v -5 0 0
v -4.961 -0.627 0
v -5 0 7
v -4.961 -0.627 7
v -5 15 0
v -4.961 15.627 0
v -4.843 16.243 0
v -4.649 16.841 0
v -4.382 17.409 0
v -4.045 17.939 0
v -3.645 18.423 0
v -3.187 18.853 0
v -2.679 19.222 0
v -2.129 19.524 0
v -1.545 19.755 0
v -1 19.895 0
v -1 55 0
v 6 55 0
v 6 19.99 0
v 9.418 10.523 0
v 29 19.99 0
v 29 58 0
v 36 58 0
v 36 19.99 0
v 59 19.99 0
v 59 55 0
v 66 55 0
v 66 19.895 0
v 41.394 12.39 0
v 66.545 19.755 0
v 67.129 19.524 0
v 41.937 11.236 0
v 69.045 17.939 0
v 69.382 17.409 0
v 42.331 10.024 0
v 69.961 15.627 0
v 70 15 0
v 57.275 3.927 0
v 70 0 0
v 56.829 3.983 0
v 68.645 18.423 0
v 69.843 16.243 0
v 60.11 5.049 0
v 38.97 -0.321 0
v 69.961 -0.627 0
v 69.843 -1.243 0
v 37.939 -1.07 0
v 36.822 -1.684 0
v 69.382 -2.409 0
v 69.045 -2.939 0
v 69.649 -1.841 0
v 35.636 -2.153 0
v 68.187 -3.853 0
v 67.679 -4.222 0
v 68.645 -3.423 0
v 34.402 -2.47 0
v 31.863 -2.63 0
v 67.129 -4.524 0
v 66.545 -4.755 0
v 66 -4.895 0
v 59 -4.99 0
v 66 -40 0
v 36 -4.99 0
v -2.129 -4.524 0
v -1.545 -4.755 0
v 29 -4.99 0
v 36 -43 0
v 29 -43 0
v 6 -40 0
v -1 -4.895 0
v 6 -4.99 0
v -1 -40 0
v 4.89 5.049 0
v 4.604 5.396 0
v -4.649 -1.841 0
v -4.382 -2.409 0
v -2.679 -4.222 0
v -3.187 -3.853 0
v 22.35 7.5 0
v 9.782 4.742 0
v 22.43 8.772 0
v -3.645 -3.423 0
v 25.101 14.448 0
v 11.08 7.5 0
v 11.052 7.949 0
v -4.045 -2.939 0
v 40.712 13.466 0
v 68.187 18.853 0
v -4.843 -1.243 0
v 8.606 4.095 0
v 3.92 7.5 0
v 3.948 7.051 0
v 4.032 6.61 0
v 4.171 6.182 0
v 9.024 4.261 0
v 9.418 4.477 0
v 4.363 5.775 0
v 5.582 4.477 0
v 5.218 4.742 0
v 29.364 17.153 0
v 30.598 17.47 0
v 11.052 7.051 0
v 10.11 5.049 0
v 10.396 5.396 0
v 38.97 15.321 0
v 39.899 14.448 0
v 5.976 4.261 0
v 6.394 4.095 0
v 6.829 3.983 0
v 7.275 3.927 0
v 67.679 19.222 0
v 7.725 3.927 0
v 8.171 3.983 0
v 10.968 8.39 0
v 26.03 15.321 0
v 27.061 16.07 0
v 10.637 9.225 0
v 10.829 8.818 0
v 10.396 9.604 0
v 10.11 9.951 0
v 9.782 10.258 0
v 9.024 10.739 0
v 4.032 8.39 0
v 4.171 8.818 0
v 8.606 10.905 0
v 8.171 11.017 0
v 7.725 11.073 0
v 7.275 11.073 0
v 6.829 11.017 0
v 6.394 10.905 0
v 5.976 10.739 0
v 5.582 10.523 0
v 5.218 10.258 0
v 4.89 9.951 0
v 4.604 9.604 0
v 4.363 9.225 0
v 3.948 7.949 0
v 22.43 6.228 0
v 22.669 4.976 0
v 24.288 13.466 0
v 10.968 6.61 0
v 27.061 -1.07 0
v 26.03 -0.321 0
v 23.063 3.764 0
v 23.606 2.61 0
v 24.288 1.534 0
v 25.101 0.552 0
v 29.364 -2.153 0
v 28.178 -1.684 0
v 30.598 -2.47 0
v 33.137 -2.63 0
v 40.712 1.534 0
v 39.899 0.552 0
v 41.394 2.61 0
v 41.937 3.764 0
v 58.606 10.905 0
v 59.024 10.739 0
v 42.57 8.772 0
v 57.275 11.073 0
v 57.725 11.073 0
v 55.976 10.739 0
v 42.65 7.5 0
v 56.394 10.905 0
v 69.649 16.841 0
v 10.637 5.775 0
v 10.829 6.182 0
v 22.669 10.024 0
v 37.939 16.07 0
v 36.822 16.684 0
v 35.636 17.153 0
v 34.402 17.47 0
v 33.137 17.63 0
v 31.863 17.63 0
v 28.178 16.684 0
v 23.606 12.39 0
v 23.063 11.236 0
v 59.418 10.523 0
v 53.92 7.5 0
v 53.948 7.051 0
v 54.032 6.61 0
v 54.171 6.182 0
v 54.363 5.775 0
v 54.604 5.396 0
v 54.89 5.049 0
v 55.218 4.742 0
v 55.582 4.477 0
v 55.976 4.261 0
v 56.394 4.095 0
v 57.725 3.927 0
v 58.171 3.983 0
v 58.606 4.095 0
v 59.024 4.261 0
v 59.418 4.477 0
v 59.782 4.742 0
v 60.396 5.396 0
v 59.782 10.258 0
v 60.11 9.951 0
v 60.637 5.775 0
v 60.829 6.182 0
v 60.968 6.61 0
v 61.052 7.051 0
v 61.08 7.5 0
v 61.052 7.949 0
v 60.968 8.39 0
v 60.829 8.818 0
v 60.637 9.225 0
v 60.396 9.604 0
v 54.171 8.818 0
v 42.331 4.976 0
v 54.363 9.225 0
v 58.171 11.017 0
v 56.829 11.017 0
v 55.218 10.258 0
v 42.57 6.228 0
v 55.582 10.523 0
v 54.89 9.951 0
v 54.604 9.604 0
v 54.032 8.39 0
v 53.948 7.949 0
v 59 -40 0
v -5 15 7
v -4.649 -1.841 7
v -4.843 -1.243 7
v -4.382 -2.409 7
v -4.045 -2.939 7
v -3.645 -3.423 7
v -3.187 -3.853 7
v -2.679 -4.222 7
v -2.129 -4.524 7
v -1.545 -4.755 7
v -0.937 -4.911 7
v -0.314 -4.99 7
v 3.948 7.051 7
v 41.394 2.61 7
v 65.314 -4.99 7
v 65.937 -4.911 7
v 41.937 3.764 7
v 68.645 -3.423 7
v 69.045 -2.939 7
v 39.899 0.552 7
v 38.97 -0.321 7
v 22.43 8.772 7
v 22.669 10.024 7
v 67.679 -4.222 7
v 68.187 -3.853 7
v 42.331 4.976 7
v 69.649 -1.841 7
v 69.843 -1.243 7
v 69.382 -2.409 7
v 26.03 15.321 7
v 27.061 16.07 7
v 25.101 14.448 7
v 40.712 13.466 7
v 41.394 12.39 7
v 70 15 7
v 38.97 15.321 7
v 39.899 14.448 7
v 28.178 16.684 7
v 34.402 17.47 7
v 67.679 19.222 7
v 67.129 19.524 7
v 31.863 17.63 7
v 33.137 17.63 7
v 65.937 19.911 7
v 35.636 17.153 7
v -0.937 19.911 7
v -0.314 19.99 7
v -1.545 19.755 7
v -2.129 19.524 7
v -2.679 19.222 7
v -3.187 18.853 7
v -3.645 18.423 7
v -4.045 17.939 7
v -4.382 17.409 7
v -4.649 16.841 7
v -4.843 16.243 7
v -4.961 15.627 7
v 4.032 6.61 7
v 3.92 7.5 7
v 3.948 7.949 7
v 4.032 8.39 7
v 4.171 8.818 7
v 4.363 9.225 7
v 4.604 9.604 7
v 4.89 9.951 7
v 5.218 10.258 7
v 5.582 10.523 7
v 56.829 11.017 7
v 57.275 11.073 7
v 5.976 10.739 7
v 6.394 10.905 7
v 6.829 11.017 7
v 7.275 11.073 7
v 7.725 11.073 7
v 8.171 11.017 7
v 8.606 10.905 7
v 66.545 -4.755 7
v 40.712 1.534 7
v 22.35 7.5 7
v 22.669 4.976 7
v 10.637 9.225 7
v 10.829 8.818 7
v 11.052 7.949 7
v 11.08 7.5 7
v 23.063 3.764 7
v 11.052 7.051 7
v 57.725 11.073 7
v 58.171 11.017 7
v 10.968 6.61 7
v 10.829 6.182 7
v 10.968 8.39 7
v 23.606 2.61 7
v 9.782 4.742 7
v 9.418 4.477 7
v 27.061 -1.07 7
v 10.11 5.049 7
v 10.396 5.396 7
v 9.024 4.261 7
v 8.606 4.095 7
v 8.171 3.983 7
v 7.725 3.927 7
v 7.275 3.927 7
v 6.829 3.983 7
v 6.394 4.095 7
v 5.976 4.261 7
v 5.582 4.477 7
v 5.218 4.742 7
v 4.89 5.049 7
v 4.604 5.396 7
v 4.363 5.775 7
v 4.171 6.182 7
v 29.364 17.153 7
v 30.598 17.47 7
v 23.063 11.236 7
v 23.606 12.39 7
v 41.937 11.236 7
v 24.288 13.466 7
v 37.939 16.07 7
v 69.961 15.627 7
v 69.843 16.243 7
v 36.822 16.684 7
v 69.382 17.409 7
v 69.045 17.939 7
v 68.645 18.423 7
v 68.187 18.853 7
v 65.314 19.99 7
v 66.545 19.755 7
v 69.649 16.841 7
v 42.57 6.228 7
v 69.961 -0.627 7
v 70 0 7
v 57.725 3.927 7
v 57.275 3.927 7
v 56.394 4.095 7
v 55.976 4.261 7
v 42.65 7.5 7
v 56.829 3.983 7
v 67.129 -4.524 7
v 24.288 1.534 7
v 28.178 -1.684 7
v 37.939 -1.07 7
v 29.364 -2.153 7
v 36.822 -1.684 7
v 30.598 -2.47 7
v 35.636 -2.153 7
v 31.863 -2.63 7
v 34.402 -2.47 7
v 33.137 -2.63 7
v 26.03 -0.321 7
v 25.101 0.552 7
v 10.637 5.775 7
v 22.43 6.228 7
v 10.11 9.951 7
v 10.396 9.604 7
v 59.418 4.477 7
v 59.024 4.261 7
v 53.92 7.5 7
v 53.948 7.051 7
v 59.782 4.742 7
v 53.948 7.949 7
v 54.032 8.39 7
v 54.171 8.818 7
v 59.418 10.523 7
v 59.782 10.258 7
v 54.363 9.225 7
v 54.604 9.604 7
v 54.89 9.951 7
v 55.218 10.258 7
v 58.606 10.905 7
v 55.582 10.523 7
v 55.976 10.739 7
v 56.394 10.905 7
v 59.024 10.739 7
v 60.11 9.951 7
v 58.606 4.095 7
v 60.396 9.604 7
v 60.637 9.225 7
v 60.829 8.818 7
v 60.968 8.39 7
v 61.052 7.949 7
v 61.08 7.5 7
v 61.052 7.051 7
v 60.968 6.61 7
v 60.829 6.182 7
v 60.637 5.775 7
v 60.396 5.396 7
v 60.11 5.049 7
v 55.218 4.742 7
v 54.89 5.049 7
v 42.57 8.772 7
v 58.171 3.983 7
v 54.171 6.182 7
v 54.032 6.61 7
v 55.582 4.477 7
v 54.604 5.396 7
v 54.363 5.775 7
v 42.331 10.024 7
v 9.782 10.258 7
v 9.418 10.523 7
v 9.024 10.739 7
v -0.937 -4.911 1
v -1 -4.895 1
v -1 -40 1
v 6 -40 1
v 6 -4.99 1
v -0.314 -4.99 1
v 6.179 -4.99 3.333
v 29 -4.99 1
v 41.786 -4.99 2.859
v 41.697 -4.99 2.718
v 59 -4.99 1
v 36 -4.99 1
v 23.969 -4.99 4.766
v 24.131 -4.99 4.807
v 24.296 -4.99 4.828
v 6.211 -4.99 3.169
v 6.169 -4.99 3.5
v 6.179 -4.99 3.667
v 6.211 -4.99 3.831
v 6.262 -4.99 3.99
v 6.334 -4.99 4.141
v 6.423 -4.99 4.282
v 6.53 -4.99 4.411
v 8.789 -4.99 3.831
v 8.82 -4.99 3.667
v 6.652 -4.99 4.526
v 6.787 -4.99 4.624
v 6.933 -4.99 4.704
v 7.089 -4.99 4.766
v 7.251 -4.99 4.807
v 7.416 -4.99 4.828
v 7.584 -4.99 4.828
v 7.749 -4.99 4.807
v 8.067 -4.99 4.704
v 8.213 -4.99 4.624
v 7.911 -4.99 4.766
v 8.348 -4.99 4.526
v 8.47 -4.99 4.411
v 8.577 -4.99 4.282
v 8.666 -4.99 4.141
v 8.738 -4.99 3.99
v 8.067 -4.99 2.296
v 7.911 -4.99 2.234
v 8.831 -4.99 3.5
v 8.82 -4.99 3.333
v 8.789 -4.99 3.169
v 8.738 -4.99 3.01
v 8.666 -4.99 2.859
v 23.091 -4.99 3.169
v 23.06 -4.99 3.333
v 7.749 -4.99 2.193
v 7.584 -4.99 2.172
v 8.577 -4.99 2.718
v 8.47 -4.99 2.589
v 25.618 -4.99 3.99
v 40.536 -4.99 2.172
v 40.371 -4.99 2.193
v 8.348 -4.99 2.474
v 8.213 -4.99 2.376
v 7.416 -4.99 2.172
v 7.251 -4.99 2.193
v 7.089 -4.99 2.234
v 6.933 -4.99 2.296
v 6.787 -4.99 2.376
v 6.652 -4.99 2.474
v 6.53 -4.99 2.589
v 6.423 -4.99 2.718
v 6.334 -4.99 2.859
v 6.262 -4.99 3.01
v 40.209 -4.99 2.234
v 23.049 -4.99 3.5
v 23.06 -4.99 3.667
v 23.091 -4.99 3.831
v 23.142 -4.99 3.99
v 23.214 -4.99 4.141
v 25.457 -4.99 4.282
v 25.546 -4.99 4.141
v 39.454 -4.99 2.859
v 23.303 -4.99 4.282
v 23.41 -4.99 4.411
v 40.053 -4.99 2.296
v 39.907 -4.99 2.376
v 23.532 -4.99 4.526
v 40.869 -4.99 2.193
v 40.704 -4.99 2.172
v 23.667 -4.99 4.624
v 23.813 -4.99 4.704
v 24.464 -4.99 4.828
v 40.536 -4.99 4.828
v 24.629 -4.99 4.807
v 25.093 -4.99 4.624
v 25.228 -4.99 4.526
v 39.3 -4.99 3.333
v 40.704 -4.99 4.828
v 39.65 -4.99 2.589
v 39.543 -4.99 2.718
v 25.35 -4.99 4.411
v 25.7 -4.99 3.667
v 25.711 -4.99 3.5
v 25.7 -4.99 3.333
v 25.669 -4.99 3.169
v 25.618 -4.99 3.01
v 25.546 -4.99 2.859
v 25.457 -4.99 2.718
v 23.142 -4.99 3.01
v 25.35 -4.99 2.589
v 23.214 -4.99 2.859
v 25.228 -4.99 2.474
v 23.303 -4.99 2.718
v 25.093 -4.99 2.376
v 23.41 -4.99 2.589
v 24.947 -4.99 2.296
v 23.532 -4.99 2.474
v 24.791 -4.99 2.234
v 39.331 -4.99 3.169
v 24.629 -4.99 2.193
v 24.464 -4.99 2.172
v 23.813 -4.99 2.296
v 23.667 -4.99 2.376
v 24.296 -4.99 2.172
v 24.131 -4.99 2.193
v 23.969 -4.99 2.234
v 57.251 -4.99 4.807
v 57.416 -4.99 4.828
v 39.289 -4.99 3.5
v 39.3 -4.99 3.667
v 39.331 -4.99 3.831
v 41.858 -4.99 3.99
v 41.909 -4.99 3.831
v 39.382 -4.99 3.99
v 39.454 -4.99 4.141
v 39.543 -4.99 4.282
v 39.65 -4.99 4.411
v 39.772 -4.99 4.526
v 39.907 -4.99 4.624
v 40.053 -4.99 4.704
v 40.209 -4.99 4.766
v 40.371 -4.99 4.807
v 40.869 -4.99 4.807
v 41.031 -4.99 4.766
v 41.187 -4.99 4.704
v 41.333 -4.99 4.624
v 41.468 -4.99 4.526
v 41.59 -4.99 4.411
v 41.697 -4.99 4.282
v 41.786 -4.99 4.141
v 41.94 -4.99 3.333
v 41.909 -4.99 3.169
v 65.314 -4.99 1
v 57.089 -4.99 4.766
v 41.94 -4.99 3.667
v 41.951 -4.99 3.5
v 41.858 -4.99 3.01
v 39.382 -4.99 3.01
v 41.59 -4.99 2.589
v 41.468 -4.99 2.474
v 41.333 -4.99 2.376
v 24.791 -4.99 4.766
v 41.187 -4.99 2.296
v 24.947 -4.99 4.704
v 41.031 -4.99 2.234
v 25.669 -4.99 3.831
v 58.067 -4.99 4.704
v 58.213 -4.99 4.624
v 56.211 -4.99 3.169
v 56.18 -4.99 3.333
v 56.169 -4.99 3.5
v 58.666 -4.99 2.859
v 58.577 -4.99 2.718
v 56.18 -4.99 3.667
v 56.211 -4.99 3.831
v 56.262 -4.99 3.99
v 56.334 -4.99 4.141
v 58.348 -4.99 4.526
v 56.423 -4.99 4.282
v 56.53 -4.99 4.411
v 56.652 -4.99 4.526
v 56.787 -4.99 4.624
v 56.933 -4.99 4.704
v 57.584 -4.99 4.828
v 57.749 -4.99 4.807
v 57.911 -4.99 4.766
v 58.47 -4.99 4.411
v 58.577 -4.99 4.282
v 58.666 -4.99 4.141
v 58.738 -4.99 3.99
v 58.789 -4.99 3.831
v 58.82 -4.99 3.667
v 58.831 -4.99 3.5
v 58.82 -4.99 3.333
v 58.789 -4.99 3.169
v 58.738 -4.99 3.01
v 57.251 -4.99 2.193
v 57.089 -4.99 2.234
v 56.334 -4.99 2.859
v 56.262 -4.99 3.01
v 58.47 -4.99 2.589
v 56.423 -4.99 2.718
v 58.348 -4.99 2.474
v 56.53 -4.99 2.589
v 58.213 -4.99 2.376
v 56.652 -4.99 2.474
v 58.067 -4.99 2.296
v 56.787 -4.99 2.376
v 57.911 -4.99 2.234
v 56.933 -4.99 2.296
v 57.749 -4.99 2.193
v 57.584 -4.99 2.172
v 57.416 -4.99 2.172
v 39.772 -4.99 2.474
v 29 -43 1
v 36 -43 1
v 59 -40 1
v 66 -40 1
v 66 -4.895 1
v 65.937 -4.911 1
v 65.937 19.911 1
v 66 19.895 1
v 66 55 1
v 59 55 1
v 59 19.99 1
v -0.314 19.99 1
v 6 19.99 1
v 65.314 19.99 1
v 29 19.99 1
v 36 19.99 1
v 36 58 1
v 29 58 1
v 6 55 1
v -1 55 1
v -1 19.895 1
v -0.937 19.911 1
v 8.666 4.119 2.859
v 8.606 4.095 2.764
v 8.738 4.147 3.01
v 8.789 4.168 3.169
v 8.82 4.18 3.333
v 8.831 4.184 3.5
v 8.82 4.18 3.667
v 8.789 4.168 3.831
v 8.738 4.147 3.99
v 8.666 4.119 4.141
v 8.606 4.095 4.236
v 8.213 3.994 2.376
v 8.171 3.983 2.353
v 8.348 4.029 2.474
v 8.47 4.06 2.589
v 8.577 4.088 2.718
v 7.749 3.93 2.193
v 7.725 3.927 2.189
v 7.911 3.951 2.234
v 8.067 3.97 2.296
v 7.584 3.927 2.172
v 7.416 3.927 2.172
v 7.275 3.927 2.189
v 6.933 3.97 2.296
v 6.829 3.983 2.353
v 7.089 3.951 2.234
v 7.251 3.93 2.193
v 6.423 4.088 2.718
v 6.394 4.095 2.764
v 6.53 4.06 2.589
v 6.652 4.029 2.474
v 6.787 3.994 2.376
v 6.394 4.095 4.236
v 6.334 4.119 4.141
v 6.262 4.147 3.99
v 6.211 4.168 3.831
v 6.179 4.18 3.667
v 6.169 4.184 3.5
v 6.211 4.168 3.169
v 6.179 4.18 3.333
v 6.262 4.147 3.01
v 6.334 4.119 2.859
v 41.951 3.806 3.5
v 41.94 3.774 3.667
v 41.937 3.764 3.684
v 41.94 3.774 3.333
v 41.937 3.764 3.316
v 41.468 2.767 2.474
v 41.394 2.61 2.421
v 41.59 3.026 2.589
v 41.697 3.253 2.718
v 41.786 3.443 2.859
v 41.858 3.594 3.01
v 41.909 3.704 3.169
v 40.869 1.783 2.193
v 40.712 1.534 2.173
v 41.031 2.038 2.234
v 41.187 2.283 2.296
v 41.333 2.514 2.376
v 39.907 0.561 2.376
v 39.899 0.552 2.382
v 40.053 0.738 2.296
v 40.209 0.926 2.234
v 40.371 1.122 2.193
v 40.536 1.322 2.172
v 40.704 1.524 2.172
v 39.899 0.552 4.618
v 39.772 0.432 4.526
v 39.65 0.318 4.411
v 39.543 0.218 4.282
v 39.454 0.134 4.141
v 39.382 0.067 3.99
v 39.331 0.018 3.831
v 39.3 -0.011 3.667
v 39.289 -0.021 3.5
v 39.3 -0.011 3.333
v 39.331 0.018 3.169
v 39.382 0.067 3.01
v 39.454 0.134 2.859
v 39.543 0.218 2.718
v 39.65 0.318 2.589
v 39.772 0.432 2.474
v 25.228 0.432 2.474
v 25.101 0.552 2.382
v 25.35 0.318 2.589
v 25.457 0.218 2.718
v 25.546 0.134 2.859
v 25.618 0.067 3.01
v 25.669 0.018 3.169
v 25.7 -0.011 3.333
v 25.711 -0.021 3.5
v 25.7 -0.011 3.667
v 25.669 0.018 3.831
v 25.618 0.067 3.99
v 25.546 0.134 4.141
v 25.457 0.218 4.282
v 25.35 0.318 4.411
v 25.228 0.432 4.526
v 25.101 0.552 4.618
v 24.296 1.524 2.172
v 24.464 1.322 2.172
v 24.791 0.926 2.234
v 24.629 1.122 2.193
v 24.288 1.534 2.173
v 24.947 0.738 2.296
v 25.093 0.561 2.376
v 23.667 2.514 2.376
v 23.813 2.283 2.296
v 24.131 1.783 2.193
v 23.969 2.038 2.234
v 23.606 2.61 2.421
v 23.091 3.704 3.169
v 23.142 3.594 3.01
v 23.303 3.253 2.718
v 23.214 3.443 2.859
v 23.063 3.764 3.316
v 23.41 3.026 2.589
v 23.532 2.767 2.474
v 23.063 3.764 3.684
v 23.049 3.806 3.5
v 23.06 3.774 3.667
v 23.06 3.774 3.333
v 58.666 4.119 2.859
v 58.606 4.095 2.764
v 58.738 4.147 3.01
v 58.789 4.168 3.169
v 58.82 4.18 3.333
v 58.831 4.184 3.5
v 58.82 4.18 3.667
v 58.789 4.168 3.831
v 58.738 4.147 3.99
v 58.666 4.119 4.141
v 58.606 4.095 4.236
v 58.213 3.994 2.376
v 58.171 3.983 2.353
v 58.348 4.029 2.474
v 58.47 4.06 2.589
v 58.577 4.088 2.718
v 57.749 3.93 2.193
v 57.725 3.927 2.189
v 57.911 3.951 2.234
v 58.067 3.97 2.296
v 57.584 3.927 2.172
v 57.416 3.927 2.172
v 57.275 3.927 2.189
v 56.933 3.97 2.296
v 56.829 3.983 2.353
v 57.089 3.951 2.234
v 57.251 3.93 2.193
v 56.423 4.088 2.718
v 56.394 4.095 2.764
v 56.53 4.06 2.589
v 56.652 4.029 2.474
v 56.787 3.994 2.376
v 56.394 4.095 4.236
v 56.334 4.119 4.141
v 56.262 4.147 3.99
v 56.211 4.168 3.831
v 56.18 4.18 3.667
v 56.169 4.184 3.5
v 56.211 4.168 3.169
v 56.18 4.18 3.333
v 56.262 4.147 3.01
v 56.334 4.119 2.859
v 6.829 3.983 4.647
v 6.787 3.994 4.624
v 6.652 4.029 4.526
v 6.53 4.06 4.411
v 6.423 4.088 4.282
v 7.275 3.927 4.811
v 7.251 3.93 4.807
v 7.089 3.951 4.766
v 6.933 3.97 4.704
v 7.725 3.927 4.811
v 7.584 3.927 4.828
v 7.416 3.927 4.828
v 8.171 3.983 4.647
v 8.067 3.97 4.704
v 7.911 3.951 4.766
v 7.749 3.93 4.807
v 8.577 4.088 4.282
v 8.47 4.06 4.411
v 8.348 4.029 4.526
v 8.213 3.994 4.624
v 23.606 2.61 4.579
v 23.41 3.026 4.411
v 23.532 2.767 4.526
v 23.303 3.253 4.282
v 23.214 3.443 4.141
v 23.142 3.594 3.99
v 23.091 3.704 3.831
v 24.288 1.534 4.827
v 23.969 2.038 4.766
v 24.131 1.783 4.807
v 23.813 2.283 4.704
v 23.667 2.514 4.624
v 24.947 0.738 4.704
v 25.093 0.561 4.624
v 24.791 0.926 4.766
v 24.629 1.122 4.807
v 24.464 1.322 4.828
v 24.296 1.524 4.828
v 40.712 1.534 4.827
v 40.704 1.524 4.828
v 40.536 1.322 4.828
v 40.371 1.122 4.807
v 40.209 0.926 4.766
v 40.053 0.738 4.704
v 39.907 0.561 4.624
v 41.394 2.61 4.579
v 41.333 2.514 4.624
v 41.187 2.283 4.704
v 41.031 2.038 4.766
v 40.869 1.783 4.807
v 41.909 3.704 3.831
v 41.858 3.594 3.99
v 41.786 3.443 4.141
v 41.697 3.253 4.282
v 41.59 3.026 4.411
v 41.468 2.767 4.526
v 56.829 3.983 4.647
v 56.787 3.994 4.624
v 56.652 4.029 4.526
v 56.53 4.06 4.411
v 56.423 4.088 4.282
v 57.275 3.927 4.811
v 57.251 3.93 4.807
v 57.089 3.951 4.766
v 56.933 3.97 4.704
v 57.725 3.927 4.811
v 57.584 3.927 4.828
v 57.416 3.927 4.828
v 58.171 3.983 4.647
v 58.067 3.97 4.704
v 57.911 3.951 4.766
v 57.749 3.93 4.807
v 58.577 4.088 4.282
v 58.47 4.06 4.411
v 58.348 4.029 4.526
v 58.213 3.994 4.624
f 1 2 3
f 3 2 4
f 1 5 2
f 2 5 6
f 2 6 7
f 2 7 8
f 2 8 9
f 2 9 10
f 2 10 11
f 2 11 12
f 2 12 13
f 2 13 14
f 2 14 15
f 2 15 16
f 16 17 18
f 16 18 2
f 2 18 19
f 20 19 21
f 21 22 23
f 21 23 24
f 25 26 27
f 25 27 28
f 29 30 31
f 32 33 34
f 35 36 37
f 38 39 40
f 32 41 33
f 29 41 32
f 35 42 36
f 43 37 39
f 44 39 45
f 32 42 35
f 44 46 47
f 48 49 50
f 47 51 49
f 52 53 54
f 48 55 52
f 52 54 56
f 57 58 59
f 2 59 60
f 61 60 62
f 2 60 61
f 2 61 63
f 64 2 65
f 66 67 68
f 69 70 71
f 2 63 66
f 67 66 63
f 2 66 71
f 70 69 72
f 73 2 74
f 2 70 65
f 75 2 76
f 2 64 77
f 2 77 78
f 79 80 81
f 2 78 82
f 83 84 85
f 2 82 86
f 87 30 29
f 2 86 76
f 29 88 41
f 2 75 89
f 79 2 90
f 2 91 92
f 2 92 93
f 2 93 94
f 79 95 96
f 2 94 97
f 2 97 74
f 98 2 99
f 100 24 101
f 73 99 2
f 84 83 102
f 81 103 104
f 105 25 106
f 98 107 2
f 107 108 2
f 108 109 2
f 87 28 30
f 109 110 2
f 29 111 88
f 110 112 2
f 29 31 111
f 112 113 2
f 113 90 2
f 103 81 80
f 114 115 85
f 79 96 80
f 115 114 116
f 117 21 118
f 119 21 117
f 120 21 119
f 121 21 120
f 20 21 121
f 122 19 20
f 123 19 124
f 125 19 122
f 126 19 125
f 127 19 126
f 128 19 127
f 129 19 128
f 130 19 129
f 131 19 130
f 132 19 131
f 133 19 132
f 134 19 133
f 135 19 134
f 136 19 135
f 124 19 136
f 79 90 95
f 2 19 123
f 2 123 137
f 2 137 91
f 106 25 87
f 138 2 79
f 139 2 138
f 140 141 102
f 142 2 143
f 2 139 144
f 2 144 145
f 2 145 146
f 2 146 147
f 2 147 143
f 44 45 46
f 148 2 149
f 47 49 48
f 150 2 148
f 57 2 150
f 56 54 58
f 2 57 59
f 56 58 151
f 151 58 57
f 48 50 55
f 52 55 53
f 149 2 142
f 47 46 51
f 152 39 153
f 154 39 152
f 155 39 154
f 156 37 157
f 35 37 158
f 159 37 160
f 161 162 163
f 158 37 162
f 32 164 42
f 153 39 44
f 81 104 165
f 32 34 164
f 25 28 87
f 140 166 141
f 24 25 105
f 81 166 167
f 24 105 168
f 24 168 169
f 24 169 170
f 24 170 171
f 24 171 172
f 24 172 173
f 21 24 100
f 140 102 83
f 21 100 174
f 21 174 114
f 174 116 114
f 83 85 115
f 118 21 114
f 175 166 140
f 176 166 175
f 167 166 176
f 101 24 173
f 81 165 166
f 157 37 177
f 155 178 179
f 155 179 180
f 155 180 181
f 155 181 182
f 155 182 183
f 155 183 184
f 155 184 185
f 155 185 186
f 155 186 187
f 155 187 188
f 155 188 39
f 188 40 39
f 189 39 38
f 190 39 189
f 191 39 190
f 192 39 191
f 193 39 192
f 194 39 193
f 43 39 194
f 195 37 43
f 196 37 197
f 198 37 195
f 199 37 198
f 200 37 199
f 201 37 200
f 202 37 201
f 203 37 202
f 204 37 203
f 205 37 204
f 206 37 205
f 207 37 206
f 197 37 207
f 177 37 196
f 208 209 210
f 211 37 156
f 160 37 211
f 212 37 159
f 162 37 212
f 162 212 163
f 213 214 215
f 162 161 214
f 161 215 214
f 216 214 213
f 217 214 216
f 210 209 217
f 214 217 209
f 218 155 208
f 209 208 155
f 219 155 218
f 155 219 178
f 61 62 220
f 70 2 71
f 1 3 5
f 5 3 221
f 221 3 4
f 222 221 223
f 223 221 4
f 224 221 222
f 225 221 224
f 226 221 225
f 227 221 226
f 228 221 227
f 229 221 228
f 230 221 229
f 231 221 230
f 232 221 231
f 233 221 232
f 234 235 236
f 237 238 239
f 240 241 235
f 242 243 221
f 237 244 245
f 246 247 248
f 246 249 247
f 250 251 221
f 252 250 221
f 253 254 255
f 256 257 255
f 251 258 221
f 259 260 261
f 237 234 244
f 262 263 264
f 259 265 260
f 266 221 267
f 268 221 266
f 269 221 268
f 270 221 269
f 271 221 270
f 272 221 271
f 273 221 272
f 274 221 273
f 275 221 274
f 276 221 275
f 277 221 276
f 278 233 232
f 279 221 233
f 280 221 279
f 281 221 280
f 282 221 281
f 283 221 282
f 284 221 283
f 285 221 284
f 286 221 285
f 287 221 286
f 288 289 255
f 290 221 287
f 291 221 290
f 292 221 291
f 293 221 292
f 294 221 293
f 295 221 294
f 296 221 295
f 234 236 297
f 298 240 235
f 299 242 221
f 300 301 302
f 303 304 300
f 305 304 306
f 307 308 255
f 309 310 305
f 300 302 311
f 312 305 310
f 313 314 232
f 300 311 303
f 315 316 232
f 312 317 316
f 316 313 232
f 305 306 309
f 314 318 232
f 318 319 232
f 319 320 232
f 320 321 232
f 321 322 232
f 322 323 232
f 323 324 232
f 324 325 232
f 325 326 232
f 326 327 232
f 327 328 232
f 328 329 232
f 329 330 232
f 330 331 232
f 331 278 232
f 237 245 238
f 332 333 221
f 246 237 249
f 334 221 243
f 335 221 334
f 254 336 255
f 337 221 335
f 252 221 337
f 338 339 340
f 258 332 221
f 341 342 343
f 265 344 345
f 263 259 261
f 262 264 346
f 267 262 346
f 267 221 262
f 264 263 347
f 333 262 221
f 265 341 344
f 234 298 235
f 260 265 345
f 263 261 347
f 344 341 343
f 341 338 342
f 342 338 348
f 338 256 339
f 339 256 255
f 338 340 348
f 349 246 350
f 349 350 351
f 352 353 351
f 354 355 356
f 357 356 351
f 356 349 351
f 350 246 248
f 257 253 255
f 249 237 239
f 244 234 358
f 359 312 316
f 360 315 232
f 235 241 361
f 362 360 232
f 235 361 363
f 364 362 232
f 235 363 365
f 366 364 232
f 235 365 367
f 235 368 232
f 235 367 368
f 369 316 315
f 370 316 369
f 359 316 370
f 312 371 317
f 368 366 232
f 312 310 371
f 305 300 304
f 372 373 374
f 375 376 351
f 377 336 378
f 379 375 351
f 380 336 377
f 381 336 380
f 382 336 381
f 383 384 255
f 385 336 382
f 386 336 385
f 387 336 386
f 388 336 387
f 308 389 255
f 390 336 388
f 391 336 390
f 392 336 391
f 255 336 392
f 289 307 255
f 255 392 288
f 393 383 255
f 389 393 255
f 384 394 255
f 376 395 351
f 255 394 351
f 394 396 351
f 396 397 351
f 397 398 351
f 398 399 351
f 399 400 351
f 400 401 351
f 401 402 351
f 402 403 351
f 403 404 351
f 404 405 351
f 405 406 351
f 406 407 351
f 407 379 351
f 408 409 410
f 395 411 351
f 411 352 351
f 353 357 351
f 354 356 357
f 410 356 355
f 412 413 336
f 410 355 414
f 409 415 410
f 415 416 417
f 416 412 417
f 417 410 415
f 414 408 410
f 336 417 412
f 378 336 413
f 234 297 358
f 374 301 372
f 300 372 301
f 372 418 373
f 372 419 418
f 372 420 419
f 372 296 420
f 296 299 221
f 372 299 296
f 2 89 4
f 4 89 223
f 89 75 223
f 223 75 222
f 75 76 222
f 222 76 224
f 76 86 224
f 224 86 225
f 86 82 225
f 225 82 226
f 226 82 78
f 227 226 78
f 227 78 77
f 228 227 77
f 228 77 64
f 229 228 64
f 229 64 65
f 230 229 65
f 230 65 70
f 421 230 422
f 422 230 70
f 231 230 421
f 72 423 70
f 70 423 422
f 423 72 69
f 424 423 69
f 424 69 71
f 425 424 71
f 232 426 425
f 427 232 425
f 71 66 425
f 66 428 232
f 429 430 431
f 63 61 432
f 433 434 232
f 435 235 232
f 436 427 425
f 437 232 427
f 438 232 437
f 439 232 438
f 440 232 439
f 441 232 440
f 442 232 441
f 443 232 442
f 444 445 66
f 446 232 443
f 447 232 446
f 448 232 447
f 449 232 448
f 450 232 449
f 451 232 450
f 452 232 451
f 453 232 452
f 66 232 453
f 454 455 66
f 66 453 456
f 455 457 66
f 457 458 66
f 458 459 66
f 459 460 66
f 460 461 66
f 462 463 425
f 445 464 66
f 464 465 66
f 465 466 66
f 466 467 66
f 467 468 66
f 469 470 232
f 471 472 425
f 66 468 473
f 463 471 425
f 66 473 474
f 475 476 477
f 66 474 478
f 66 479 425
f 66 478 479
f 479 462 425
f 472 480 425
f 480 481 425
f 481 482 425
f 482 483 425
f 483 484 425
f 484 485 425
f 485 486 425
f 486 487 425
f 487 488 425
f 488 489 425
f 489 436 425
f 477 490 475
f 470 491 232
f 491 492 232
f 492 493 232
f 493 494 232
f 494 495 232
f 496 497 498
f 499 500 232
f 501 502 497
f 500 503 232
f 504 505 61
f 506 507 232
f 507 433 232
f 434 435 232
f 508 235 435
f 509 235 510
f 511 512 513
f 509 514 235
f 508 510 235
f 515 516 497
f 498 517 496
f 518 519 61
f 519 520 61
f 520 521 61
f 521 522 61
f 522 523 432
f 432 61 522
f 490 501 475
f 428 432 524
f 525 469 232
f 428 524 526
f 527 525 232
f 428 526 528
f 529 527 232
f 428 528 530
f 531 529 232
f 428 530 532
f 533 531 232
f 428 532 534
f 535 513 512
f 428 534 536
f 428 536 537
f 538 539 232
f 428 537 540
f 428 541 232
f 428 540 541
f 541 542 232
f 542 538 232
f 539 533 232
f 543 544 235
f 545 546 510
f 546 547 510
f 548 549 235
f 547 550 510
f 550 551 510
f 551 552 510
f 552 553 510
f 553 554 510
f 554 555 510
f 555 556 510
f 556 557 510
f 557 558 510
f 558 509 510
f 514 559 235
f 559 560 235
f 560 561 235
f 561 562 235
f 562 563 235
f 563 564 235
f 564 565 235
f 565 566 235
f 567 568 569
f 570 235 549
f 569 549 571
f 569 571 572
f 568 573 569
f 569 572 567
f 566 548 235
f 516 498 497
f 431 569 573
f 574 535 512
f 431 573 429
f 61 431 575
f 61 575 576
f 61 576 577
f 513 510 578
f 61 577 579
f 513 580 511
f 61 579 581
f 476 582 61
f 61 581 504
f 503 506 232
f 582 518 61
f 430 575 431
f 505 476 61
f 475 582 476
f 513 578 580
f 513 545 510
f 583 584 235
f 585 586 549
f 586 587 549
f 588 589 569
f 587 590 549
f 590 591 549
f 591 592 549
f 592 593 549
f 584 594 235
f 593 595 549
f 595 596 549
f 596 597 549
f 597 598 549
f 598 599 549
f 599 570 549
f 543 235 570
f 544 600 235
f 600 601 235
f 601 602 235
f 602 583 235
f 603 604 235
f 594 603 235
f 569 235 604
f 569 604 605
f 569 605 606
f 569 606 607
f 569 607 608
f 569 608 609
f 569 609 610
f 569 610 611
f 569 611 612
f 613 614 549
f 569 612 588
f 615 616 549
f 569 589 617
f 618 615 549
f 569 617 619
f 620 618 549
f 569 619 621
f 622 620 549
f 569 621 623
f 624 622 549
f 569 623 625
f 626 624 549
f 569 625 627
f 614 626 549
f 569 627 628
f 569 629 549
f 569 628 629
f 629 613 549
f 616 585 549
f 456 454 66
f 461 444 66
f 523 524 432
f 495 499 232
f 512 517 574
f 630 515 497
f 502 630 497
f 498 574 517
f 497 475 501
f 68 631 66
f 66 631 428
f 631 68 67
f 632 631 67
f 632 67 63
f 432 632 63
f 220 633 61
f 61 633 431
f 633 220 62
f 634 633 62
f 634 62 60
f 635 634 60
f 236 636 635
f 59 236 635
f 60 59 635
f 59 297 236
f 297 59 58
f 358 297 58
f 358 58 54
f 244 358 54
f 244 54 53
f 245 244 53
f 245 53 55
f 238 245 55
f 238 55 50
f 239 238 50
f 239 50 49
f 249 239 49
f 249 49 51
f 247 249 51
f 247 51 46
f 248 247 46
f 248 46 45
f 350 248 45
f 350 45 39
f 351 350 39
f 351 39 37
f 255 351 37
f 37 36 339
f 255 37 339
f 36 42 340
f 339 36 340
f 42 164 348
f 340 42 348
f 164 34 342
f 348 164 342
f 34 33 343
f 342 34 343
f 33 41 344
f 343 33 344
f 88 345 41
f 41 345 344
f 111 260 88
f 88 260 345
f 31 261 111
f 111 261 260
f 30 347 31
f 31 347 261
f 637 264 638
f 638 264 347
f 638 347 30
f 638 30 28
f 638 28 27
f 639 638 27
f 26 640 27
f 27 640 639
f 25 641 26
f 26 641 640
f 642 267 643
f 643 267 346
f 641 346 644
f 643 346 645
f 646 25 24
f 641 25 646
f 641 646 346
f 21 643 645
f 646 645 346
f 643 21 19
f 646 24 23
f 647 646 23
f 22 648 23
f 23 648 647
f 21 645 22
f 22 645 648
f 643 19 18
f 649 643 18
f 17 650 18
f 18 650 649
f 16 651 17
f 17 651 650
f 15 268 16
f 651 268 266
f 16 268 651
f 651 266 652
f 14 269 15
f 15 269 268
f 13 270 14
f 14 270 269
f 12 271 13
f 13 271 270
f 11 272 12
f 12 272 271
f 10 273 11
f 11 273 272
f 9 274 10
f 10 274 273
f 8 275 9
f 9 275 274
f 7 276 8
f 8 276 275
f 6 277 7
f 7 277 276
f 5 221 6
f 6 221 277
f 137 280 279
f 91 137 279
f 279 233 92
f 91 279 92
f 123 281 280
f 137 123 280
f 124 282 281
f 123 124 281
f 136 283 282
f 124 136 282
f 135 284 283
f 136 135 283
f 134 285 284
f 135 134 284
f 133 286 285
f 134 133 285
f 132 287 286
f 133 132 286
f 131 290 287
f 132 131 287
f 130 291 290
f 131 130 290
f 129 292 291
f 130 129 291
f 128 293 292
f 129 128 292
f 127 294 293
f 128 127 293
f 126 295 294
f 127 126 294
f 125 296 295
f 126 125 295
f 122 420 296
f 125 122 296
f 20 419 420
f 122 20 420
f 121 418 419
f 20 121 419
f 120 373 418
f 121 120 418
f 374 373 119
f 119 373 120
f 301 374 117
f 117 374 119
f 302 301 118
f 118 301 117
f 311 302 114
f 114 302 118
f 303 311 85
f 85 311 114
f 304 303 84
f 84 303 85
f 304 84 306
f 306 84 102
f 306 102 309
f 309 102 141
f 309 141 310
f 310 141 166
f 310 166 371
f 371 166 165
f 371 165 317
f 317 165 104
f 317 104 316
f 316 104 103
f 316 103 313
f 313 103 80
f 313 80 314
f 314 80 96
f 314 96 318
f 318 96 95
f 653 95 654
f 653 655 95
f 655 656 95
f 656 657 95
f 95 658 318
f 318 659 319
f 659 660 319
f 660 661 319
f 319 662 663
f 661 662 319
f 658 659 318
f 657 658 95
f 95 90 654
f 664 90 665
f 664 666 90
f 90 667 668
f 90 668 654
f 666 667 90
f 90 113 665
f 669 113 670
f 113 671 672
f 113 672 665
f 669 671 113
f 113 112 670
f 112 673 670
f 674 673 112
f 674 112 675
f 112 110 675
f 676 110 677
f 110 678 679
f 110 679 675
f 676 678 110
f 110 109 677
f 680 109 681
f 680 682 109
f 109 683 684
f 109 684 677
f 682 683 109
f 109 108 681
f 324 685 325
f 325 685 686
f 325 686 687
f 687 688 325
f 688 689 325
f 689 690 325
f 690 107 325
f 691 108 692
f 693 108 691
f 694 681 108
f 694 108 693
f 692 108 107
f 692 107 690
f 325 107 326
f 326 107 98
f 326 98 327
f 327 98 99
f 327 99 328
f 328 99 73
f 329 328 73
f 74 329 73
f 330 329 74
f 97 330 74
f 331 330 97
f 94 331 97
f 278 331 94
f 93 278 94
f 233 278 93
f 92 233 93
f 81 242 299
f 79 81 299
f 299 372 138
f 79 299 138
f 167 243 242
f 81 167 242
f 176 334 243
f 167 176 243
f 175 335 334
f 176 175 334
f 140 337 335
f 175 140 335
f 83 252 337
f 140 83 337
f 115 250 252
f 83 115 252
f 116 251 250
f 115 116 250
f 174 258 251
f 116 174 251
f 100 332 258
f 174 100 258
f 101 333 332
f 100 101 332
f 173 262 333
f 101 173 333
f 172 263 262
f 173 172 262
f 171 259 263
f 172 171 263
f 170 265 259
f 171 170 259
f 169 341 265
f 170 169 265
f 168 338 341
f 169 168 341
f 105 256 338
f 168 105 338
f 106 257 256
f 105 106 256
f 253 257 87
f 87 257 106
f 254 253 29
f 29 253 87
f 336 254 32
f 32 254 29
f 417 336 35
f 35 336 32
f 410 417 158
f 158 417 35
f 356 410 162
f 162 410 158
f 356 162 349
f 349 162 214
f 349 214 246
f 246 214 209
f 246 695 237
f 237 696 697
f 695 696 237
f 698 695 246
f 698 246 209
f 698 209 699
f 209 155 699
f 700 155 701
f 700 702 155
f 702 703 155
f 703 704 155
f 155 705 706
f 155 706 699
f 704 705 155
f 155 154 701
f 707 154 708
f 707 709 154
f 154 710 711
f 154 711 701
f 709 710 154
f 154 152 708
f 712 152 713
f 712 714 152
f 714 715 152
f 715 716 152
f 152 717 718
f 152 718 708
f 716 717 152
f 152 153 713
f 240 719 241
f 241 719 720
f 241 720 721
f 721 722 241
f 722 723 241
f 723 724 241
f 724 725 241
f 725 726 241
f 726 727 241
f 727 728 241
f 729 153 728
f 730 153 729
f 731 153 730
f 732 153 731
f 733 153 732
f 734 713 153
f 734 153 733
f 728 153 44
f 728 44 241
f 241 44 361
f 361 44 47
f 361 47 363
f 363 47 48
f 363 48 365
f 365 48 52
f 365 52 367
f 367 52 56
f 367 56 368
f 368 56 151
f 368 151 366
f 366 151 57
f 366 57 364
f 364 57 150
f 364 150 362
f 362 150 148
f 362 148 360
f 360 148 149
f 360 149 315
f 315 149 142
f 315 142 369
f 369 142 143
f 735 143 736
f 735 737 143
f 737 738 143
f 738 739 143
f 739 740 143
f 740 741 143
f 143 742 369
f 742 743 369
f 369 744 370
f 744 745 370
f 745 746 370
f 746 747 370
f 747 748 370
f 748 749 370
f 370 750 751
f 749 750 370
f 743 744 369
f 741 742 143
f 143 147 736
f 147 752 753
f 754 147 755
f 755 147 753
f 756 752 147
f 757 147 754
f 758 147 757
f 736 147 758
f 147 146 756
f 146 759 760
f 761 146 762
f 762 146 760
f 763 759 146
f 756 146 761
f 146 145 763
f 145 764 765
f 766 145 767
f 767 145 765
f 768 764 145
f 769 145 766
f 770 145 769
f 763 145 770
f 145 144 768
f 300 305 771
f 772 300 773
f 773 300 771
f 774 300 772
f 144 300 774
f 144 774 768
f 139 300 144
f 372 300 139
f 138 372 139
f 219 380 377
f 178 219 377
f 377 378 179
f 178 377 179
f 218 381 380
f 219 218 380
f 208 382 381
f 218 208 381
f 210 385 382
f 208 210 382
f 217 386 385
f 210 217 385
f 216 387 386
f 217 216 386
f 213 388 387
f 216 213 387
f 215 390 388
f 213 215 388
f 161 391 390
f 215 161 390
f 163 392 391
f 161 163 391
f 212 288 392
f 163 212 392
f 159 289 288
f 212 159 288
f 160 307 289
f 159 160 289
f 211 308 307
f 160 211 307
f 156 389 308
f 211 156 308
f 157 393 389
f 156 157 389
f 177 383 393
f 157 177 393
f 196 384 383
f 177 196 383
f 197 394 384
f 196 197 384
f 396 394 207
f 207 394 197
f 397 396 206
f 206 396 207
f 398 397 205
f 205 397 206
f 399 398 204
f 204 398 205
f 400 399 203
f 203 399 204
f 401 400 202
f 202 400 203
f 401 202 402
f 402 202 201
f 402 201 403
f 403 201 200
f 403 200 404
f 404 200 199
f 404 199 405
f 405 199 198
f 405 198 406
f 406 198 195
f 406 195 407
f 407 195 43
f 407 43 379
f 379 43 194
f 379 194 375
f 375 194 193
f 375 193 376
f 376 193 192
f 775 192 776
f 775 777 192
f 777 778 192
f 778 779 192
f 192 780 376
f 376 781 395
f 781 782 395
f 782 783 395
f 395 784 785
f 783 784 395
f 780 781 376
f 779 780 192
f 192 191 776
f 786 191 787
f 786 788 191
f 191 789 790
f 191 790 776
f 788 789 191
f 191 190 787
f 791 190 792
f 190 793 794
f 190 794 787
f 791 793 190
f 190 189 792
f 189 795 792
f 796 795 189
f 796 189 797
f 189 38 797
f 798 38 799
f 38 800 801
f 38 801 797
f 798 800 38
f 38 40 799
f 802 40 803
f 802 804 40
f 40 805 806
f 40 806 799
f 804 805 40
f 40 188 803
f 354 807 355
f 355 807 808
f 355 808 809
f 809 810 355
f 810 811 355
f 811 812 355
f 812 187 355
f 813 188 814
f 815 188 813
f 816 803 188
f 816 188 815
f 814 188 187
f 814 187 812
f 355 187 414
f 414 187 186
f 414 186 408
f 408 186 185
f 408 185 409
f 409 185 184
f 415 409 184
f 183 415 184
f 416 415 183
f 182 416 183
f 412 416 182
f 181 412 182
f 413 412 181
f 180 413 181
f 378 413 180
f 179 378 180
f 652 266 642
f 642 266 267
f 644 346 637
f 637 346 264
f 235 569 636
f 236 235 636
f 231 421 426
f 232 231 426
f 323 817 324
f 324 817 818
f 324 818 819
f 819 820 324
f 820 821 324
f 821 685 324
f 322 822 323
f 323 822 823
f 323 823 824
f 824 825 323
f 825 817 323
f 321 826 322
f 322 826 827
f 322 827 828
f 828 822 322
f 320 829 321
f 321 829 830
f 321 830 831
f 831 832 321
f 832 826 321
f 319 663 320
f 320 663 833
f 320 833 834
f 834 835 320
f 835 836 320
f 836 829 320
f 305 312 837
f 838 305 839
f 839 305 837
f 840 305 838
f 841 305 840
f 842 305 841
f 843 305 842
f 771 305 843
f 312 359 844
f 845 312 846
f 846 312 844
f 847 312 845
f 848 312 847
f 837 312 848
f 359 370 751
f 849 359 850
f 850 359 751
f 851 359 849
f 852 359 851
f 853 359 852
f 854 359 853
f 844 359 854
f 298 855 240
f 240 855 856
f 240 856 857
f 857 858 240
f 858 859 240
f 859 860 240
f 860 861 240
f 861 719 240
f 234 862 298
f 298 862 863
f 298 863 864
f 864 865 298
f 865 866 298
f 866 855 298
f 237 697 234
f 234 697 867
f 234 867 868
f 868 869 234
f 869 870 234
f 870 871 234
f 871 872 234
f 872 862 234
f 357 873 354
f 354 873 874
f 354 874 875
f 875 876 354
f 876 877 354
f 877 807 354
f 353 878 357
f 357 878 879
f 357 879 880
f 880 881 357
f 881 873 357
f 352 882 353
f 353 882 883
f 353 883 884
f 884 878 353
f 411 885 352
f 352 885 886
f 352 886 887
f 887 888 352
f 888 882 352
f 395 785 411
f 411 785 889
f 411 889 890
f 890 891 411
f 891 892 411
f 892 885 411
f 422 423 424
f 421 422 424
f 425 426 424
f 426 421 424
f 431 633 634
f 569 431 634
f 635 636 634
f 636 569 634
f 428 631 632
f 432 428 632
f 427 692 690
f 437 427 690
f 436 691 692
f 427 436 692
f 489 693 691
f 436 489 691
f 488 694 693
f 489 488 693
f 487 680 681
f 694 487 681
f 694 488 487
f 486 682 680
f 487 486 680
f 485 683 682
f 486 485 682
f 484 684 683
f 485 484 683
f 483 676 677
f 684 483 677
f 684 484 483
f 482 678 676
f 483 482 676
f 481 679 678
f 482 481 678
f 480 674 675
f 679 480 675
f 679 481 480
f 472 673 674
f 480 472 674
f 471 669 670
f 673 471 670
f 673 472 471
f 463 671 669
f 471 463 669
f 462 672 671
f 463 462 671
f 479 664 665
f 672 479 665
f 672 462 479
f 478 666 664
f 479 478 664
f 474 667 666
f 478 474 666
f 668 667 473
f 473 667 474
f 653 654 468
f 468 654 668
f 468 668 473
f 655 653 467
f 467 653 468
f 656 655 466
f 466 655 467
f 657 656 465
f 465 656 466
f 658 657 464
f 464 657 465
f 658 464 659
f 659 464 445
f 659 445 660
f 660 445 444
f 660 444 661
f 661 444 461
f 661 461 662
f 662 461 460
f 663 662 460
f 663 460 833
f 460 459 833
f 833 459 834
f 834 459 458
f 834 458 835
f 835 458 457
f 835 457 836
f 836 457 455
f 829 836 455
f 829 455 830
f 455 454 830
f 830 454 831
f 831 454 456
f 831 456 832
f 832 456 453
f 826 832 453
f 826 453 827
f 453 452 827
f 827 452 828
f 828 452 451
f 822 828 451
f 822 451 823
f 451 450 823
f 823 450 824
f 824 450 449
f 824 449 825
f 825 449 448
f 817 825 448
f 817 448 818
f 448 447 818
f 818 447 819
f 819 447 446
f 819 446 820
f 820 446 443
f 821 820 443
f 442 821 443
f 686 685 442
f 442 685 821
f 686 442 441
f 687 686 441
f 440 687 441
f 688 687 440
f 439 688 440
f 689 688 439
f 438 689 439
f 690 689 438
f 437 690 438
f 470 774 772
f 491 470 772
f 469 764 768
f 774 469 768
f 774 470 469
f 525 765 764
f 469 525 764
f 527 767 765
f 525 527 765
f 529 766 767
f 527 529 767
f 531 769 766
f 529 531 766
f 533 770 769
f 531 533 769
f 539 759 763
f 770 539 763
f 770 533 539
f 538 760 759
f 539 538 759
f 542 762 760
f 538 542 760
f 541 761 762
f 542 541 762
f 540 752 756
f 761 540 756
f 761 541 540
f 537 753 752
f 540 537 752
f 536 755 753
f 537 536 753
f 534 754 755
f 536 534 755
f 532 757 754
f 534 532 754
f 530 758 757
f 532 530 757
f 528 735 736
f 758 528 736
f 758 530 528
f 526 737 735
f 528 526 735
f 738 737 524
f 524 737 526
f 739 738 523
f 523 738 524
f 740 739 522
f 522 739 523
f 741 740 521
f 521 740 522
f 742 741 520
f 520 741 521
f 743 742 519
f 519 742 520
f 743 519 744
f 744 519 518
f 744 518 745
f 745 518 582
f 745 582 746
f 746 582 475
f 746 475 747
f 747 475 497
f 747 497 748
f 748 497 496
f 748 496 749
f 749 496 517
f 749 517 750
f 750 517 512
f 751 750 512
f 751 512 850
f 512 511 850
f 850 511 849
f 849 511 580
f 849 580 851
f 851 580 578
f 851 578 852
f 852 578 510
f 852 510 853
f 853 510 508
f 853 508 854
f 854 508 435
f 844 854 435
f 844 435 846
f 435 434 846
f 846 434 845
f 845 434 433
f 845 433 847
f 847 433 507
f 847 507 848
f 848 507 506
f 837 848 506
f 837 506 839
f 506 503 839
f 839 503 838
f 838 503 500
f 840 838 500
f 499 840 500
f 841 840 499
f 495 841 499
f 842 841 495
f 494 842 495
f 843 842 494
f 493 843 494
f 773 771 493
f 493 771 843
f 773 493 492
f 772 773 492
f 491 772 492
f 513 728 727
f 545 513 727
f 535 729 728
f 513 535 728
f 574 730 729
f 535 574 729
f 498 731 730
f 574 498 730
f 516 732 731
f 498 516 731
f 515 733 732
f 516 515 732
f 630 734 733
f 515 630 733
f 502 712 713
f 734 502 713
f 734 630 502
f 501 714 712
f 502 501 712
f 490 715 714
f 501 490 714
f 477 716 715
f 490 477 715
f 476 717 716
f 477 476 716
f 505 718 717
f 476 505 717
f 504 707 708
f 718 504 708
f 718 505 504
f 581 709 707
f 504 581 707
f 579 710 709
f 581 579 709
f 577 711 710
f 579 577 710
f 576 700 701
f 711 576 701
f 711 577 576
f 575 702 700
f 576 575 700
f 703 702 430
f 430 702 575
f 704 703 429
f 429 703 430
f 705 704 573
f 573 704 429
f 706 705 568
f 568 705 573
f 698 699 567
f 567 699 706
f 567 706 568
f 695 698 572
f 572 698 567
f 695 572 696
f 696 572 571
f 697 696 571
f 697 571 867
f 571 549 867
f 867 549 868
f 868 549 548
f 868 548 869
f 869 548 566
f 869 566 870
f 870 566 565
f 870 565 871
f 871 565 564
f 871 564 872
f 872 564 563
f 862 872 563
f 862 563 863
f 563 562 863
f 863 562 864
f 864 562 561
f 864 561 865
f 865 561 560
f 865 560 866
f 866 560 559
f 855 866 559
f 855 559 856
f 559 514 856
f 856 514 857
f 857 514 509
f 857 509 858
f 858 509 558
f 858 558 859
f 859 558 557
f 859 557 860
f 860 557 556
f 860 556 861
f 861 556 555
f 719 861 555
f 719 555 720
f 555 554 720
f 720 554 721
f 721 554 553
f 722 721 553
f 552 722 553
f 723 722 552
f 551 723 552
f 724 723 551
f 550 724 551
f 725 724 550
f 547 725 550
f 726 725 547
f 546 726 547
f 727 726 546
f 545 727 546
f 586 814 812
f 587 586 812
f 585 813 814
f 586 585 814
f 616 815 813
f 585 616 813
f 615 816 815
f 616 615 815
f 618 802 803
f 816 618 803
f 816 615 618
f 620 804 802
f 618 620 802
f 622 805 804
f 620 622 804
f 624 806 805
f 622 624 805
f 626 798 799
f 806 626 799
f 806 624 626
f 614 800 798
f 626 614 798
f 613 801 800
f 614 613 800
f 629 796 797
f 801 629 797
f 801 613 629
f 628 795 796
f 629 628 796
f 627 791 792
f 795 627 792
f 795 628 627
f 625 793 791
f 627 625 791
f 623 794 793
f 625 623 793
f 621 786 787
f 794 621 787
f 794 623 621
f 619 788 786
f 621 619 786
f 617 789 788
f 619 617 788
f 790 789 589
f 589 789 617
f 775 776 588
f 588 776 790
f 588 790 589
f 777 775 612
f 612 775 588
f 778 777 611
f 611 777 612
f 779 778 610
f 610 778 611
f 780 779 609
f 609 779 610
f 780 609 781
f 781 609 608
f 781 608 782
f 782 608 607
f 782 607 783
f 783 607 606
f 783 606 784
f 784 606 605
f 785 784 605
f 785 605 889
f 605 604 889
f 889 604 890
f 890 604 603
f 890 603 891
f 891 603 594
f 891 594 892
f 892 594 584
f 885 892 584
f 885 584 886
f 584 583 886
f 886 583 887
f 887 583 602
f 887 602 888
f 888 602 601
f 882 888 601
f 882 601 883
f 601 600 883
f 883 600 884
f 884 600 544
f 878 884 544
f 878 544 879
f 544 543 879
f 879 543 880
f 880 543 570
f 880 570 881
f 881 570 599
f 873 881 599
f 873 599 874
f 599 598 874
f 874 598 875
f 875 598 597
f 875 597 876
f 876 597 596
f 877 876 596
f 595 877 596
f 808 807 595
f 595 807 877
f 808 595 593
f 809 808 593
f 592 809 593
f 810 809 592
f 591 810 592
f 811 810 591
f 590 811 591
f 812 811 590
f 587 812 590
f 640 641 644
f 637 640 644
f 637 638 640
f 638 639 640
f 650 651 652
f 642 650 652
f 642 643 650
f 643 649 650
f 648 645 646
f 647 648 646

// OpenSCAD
// Resolution
$fn=50;

// Base of stand
// Note, remote the radius from the dimensions
// of th rectangular base
base_width = 15;
base_thickness = 7;
base_length = 65;
curve_radius = 5;

// Risers
riser_radius = 3.38 + 0.2; // Loose fit clear drill for 1/4"
riser_separation = 50;

// DCDT
dcdt_radius = 10.15;

// Screw Holes
screw_radius = 1.1310 + 0.2; //or 1.1303

// Raft
raft_width = 7;
raft_length = 40;
raft_thickness = 1;


// Make the base of the stand with holes for the magnets
difference(){
// Base
linear_extrude(height = base_thickness) 
minkowski()
{
square([base_length ,base_width]);
circle(5);
}

// Make holes in base for magnets
translate([base_length/2,base_width/2,0]) cylinder(2*base_thickness,dcdt_radius,dcdt_radius);

translate([base_length/2-riser_separation/2,base_width/2,-0.5*base_thickness]) cylinder(2*base_thickness,riser_radius,riser_radius);

translate([base_length/2+riser_separation/2,base_width/2,-0.5*base_thickness]) cylinder(2*base_thickness,riser_radius,riser_radius);

// Make the screw holes for the risers
translate([base_length/2+riser_separation/2,0.7*base_width/2,0.5*base_thickness]) rotate([90,0,0]) cylinder(1.5*base_width,screw_radius,screw_radius);

translate([base_length/2-riser_separation/2,0.7*base_width/2,0.5*base_thickness]) rotate([90,0,0]) cylinder(1.5*base_width,screw_radius,screw_radius);

// Make the screw holes for the DCDT 
translate([base_length/2+dcdt_radius/1.25,base_width/2,0.5*base_thickness]) rotate([90,0,0]) cylinder(1.5*base_width,screw_radius,screw_radius);

translate([base_length/2-dcdt_radius/1.25,base_width/2,0.5*base_thickness]) rotate([90,0,0]) cylinder(1.5*base_width,screw_radius,screw_radius);

}

// Make a pseudo raft
translate([-1,base_width,0]) cube([raft_width,raft_length,raft_thickness]);
translate([-1,-1*raft_length,0]) cube([raft_width,raft_length,raft_thickness]);

translate([base_length-raft_width+1,base_width,0]) cube([raft_width,raft_length,raft_thickness]);
translate([base_length-raft_width+1,-1*raft_length,0]) cube([raft_width,raft_length,raft_thickness]);

translate([base_length/2-raft_width/2,base_width+3,0]) cube([raft_width,raft_length,raft_thickness]);
translate([base_length/2-raft_width/2,-1*raft_length-3,0]) cube([raft_width,raft_length,raft_thickness]);
